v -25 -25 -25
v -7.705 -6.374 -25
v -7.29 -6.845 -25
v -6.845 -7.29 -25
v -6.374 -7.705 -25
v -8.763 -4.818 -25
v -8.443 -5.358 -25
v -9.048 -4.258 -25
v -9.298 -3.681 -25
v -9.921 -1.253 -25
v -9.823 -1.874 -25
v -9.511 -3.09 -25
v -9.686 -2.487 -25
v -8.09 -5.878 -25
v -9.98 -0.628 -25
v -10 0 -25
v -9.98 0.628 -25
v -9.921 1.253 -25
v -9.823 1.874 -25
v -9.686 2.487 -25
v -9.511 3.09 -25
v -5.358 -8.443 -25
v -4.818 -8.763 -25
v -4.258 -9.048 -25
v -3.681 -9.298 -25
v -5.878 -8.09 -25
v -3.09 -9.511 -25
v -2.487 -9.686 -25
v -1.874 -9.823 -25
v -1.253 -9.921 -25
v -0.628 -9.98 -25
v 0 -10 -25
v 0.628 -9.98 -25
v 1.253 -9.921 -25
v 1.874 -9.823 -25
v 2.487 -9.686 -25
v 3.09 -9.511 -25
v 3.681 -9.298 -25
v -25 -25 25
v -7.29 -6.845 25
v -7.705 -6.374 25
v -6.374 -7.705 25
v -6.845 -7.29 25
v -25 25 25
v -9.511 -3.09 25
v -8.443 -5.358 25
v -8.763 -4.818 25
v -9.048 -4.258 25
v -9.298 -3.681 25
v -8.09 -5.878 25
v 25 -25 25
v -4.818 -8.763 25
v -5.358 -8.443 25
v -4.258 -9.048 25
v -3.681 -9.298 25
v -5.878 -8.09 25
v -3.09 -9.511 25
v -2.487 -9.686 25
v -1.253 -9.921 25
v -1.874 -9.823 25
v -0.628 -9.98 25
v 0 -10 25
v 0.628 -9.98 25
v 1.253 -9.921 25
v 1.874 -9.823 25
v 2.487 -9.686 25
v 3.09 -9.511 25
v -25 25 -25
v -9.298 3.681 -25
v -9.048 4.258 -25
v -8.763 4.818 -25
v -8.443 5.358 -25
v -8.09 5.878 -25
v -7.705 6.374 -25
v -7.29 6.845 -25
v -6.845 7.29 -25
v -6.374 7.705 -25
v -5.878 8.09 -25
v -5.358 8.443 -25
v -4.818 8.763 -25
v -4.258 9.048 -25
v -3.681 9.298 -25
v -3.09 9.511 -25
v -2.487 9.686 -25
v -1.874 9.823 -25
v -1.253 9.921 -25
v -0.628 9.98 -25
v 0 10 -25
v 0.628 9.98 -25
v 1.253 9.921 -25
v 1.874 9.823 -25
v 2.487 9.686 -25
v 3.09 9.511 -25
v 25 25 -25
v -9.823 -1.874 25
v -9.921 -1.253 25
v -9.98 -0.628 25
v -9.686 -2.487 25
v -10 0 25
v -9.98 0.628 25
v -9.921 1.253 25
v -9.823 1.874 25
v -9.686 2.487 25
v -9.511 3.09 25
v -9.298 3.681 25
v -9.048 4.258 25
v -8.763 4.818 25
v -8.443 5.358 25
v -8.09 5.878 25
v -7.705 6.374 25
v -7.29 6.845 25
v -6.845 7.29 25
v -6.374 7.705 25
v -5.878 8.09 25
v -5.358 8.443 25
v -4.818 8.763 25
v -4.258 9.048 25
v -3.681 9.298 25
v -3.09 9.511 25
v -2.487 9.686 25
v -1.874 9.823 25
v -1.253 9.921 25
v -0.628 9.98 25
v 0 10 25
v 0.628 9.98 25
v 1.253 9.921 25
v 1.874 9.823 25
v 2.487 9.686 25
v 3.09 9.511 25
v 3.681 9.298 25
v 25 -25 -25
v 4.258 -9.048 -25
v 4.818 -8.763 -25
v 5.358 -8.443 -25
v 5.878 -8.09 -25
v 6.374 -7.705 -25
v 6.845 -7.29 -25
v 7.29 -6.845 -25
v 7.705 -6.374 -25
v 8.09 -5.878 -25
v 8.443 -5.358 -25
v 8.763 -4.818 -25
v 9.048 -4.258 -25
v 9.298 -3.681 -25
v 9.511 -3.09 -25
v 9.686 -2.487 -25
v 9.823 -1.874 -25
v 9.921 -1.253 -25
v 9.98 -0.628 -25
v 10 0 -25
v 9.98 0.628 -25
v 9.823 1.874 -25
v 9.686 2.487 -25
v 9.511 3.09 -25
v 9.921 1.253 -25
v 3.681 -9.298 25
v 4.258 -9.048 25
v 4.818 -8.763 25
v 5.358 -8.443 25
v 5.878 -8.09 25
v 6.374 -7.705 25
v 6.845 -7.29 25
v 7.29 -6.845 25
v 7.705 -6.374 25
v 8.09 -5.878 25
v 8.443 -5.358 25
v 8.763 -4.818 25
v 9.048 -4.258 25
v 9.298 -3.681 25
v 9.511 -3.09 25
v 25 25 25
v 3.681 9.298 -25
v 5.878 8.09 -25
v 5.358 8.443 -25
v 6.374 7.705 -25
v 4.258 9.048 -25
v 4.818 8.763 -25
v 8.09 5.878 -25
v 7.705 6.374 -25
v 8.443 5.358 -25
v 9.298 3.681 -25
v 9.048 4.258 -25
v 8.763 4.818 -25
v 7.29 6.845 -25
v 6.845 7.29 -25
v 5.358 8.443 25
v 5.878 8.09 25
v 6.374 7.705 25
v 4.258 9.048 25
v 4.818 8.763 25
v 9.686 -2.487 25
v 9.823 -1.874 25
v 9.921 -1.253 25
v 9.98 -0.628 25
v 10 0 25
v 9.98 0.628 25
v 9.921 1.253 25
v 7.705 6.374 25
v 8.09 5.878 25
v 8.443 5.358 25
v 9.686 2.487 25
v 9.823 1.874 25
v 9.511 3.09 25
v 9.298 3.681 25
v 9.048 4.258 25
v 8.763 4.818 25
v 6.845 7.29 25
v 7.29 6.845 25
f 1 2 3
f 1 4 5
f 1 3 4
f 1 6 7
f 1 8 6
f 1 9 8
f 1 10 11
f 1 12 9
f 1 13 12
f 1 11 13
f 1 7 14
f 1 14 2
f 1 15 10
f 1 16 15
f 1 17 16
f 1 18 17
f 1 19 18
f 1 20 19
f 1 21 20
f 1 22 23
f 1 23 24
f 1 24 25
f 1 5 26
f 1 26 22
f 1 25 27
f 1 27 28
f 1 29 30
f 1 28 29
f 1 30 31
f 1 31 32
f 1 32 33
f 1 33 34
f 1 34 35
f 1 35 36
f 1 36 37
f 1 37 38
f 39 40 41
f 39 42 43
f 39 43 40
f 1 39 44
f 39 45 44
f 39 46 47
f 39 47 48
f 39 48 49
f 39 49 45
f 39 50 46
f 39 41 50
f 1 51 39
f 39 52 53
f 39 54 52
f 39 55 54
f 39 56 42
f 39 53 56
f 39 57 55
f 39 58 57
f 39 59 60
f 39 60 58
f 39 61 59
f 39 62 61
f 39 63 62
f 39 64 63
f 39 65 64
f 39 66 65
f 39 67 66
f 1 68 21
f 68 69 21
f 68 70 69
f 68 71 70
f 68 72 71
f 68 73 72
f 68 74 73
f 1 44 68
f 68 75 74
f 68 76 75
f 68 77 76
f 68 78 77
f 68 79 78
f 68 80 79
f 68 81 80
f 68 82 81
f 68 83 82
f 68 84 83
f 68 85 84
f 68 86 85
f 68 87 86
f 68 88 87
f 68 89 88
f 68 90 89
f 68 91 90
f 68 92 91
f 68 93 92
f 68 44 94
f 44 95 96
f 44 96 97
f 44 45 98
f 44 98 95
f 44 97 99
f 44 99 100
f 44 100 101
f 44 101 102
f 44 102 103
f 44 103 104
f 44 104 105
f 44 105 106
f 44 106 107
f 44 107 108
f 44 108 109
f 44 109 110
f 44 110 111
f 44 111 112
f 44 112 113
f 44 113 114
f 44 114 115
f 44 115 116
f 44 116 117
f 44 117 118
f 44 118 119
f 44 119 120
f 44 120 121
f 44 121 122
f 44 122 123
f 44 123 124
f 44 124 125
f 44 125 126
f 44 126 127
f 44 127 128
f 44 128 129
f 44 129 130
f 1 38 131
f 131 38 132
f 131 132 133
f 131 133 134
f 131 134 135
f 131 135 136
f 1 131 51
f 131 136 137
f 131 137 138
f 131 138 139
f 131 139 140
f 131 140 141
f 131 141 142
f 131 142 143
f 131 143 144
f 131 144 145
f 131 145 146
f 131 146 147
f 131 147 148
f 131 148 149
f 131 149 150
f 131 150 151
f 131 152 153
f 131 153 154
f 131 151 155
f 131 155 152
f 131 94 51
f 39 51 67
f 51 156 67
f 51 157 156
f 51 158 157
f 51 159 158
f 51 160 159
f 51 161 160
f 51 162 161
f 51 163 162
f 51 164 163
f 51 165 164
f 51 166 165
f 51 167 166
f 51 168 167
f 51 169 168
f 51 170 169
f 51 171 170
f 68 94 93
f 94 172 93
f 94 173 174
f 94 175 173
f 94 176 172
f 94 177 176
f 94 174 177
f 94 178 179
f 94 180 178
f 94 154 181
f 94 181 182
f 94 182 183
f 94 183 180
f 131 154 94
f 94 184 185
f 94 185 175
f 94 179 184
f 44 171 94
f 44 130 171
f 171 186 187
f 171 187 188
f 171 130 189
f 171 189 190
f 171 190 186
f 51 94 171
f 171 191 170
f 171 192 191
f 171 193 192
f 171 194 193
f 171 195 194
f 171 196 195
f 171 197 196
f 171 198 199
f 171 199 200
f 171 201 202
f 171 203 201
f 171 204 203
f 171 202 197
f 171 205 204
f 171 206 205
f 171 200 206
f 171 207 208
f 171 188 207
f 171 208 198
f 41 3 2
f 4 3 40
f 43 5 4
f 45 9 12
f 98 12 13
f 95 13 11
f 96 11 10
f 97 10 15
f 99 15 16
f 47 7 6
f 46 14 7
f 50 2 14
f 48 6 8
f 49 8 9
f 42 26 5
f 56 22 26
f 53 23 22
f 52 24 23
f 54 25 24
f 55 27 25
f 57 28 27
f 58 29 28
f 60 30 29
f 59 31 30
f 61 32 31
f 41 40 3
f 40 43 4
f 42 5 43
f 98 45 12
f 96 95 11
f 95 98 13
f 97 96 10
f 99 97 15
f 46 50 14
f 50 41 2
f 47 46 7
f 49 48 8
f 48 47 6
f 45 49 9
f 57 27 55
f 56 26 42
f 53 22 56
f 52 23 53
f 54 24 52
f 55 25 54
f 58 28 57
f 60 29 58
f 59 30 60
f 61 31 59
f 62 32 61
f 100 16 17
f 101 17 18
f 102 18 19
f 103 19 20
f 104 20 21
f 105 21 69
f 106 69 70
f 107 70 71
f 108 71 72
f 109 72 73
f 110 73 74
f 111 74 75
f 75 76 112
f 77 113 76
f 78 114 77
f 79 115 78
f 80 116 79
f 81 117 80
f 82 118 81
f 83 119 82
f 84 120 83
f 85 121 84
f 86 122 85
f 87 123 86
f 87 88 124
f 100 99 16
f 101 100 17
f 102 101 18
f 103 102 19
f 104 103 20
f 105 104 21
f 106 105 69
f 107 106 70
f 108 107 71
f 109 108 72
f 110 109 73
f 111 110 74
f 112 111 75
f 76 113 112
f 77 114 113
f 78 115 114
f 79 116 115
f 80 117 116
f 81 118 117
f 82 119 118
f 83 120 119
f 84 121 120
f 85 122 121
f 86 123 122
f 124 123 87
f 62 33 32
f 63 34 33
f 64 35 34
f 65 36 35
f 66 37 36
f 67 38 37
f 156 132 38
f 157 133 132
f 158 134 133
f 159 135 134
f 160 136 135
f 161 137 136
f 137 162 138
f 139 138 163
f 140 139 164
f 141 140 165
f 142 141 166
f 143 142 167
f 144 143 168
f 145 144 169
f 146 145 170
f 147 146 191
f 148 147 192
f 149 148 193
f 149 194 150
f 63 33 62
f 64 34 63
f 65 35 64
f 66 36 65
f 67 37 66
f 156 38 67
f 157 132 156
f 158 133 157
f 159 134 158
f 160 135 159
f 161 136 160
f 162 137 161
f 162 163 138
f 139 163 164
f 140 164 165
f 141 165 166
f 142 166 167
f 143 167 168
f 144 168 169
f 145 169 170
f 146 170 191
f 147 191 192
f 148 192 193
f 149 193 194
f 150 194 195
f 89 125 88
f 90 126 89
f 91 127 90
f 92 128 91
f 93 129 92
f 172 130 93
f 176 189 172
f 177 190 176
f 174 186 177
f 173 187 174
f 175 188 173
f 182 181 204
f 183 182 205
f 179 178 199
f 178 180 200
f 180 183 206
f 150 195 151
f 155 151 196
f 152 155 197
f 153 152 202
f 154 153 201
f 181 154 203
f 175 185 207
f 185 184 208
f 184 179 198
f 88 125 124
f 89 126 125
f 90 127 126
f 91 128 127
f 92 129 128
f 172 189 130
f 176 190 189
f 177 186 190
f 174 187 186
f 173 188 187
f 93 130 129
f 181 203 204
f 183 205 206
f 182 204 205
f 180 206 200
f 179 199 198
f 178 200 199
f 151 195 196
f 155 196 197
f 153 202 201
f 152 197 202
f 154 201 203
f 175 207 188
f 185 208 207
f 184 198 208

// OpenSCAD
// 50mm角の立方体に、直径20mmの貫通穴(z軸方向)

difference() {
    // 50mm角の立方体(中心を原点に配置)
    cube([50, 50, 50], center = true);

    // 直径20mmの貫通穴(z軸方向)
    cylinder(h = 60, d = 20, center = true, $fn = 100);
}
